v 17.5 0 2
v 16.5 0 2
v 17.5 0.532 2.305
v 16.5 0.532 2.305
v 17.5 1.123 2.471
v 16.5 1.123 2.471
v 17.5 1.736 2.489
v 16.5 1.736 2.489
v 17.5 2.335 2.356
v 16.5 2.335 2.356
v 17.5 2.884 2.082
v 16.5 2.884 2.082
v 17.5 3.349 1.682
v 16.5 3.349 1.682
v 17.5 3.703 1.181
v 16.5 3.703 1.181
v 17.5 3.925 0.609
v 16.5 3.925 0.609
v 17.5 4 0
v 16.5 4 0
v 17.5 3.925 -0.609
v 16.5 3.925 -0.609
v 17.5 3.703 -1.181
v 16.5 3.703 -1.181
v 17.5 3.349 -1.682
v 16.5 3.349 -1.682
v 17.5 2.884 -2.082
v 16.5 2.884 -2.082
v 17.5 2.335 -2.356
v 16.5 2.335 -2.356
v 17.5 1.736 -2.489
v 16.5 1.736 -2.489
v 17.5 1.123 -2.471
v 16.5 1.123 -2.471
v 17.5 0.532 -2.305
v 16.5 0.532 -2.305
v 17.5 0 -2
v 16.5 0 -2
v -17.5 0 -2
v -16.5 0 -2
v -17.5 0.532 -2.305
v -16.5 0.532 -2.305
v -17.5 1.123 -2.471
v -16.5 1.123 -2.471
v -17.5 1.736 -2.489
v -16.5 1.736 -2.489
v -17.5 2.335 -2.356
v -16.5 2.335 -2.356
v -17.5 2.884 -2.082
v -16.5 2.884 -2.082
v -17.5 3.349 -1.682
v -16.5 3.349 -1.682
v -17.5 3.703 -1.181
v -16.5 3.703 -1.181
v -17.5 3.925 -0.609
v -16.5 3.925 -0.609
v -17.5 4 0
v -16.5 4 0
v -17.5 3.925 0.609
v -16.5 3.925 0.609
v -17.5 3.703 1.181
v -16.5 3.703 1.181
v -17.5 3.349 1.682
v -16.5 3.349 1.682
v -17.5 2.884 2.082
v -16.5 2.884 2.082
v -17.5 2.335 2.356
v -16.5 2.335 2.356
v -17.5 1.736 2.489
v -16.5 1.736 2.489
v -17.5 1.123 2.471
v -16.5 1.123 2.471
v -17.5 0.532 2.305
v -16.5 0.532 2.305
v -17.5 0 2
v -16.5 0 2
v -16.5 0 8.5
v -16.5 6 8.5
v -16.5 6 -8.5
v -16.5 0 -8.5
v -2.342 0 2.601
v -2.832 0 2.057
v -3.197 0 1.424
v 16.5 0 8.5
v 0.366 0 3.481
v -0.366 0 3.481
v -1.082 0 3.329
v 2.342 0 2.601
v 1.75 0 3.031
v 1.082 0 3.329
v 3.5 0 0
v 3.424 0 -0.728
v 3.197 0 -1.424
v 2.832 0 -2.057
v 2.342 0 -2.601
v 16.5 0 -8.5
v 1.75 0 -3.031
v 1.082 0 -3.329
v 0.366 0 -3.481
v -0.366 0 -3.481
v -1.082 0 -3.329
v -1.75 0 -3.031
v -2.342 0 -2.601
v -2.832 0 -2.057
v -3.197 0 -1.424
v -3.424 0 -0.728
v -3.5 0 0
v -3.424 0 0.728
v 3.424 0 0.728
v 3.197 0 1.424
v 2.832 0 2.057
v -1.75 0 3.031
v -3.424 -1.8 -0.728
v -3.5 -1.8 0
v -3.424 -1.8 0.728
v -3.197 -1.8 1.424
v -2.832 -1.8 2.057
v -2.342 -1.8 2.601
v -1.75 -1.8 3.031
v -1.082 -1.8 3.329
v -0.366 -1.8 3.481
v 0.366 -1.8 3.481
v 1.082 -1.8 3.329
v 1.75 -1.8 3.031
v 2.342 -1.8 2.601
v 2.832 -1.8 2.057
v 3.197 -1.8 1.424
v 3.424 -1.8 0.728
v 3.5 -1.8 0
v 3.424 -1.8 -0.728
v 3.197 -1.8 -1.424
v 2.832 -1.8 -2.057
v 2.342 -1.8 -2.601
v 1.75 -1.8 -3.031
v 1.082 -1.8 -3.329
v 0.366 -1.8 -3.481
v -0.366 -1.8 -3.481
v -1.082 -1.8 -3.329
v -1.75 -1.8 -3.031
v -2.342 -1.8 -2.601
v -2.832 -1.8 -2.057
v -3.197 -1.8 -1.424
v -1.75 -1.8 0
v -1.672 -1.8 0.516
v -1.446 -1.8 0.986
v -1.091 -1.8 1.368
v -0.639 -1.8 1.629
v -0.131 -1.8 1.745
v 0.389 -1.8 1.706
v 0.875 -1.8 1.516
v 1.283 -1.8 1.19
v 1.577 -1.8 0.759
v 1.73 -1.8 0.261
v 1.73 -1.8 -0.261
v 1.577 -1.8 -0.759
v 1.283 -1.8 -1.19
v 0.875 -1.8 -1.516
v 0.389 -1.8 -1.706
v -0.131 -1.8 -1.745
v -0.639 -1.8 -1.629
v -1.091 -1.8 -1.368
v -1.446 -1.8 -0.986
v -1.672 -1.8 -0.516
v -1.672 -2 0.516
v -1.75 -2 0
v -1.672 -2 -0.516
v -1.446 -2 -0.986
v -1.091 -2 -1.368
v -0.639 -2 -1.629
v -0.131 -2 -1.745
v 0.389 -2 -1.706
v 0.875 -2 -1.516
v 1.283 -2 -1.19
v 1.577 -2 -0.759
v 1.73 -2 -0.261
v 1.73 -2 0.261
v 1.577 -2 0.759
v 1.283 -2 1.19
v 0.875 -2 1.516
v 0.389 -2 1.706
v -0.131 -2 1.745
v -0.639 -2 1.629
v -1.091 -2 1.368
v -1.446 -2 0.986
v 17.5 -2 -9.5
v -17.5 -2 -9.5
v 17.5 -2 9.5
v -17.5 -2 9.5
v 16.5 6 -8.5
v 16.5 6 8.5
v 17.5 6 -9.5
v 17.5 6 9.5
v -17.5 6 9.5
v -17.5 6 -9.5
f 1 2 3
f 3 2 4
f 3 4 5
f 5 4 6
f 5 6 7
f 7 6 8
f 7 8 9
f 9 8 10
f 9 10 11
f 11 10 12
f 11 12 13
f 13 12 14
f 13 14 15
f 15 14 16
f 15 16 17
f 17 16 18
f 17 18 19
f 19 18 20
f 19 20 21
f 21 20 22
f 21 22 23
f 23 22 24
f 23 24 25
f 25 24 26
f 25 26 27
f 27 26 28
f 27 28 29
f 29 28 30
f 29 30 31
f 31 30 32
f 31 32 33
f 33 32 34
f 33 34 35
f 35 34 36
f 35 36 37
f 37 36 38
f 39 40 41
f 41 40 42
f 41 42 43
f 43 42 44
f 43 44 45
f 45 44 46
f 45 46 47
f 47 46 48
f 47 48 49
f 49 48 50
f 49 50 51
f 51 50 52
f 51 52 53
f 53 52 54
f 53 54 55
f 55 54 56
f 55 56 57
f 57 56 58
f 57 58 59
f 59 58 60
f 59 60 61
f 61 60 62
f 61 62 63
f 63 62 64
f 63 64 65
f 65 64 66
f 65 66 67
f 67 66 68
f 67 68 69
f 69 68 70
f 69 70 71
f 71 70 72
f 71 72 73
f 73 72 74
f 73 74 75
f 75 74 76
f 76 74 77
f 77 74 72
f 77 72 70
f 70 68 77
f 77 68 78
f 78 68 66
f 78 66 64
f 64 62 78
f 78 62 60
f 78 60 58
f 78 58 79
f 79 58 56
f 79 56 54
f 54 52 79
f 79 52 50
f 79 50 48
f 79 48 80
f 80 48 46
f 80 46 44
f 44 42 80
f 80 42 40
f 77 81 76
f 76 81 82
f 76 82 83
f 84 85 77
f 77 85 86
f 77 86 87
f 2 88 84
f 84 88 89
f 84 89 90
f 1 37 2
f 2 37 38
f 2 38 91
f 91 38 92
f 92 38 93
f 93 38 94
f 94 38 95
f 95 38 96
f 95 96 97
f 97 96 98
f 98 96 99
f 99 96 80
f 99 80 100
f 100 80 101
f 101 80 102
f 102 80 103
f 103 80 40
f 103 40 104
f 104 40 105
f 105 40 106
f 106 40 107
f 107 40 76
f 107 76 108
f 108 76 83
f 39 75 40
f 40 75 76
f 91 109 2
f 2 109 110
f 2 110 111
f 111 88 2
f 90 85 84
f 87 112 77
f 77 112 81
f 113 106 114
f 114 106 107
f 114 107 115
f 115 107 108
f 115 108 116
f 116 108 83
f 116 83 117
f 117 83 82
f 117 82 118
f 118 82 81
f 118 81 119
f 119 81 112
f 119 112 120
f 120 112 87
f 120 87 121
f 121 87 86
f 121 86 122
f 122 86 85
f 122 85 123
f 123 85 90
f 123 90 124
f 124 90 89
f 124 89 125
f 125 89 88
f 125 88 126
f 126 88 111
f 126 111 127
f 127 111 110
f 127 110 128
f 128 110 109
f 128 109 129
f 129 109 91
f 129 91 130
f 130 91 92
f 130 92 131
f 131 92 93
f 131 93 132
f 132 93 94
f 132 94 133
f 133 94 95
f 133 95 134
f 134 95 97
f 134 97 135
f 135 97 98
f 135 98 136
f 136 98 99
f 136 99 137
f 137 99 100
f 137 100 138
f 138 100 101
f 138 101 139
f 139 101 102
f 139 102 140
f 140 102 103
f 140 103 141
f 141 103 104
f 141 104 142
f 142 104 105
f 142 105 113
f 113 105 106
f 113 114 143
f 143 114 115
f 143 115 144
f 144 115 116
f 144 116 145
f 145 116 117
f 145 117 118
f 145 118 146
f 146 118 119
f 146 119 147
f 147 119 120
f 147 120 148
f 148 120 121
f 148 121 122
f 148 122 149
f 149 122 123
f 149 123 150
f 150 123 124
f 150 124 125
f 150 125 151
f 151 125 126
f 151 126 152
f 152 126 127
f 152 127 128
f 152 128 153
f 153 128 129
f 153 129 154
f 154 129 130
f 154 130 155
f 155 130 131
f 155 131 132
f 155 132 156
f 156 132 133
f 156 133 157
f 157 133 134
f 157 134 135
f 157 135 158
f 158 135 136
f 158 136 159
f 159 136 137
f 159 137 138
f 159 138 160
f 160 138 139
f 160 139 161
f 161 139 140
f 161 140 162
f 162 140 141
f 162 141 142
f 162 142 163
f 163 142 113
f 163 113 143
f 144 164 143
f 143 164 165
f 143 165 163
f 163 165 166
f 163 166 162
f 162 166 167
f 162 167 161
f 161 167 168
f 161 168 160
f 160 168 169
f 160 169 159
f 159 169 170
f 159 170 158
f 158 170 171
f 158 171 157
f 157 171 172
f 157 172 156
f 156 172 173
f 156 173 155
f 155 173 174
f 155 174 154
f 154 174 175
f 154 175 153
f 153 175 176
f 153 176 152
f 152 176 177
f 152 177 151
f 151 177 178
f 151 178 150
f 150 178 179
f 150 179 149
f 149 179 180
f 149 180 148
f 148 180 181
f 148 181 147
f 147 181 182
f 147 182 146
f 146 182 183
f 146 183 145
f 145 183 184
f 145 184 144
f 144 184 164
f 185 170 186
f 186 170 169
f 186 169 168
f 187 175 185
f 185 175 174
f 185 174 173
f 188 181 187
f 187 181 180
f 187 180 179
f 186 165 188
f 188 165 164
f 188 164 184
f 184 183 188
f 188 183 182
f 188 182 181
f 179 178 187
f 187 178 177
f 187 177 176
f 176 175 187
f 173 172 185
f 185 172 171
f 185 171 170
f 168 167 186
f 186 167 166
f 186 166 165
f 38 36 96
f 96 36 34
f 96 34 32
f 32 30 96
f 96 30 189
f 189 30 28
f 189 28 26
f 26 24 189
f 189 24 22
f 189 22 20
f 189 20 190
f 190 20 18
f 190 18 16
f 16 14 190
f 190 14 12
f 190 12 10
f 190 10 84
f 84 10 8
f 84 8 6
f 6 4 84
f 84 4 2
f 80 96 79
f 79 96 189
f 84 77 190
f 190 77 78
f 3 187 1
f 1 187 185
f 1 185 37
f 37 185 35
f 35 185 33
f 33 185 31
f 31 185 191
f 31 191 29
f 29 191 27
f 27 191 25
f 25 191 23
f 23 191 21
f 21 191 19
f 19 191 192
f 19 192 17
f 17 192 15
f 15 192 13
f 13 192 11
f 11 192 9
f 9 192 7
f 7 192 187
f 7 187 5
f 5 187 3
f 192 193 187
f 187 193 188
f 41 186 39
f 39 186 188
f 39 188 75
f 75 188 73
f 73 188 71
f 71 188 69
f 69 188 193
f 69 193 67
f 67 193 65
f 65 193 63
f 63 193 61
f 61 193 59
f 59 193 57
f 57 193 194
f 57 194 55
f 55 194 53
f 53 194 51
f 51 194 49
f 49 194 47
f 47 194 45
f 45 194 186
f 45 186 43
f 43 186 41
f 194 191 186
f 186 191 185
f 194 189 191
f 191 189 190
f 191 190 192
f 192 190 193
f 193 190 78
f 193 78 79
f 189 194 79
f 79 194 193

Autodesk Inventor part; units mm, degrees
ref_plane "YZ Plane" through (0, 0, 0) normal (1, 0, 0) x (0, 1, 0)
ref_plane "XZ Plane" through (0, 0, 0) normal (0, 1, 0) x (-1, 0, 0)
ref_plane "XY Plane" through (0, 0, 0) normal (0, 0, 1) x (1, 0, 0)
sketch "Szkic1" plane through (0, 0, 0) normal (0, 1, 0) x (-1, 0, 0)
  line L0 (-16.5, 8.5) -> (16.5, 8.5)
  line L1 (16.5, 8.5) -> (16.5, -8.5)
  line L2 (16.5, -8.5) -> (-16.5, -8.5)
  line L3 (-16.5, -8.5) -> (-16.5, 8.5)
  line L4 (-16.5, 8.5) -> (16.5, -8.5) construction
  line L5 (16.5, 8.5) -> (-16.5, -8.5) construction
  line L6 (-17.5, 9.5) -> (17.5, 9.5)
  line L7 (17.5, 9.5) -> (17.5, -9.5)
  line L8 (17.5, -9.5) -> (-17.5, -9.5)
  line L9 (-17.5, -9.5) -> (-17.5, 9.5)
  line L10 (-17.5, 9.5) -> (17.5, -9.5) construction
  line L11 (17.5, 9.5) -> (-17.5, -9.5) construction
  circle A0 centre (0, 0) radius 1.75
  circle A1 centre (0, 0) radius 3.5
  dimension "d0" = 33
  dimension "d1" = 17
  dimension "d2" = 35
  dimension "d3" = 19
  dimension "d4" = 3.5
  dimension "d5" = 7
extrude "Wyciągnięcie proste1" add sketch "Szkic1" along normal blind 6 contours L6 L7 L8 L9
extrude "Wyciągnięcie proste2" add sketch "Szkic1" against normal blind 2 contours L0 L1 L2 L3 | L6 L7 L8 L9 | A1
extrude "Wyciągnięcie proste3" cut sketch "Szkic1" against normal blind 1.8 contours A1
sketch "Szkic2" plane through (17.5, 6, 9.5) normal (1, 0, 0) x (0, 0, -1)
  line L0 (1, -6) -> (1, 0) projected
  line L1 (18, -6) -> (1, -6) projected
  line L2 (1, -6) -> (18, -6)
  line L3 (9.5, -6) -> (9.5, 0)
  line L4 (0, 0) -> (19, 0) projected
  line L5 (9.5, -6) -> (9.5, -3)
  circle A0 centre (9.5, -4.5) radius 2.5
  point P0 (11.5, -6)
  point P1 (7.5, -6)
  dimension "d14" = 5
extrude "Wyciągnięcie proste4" cut sketch "Szkic2" against normal blind 39.25 contours A0 L3 L1 | L3 A0 L1
properties part number "Battery_box"
